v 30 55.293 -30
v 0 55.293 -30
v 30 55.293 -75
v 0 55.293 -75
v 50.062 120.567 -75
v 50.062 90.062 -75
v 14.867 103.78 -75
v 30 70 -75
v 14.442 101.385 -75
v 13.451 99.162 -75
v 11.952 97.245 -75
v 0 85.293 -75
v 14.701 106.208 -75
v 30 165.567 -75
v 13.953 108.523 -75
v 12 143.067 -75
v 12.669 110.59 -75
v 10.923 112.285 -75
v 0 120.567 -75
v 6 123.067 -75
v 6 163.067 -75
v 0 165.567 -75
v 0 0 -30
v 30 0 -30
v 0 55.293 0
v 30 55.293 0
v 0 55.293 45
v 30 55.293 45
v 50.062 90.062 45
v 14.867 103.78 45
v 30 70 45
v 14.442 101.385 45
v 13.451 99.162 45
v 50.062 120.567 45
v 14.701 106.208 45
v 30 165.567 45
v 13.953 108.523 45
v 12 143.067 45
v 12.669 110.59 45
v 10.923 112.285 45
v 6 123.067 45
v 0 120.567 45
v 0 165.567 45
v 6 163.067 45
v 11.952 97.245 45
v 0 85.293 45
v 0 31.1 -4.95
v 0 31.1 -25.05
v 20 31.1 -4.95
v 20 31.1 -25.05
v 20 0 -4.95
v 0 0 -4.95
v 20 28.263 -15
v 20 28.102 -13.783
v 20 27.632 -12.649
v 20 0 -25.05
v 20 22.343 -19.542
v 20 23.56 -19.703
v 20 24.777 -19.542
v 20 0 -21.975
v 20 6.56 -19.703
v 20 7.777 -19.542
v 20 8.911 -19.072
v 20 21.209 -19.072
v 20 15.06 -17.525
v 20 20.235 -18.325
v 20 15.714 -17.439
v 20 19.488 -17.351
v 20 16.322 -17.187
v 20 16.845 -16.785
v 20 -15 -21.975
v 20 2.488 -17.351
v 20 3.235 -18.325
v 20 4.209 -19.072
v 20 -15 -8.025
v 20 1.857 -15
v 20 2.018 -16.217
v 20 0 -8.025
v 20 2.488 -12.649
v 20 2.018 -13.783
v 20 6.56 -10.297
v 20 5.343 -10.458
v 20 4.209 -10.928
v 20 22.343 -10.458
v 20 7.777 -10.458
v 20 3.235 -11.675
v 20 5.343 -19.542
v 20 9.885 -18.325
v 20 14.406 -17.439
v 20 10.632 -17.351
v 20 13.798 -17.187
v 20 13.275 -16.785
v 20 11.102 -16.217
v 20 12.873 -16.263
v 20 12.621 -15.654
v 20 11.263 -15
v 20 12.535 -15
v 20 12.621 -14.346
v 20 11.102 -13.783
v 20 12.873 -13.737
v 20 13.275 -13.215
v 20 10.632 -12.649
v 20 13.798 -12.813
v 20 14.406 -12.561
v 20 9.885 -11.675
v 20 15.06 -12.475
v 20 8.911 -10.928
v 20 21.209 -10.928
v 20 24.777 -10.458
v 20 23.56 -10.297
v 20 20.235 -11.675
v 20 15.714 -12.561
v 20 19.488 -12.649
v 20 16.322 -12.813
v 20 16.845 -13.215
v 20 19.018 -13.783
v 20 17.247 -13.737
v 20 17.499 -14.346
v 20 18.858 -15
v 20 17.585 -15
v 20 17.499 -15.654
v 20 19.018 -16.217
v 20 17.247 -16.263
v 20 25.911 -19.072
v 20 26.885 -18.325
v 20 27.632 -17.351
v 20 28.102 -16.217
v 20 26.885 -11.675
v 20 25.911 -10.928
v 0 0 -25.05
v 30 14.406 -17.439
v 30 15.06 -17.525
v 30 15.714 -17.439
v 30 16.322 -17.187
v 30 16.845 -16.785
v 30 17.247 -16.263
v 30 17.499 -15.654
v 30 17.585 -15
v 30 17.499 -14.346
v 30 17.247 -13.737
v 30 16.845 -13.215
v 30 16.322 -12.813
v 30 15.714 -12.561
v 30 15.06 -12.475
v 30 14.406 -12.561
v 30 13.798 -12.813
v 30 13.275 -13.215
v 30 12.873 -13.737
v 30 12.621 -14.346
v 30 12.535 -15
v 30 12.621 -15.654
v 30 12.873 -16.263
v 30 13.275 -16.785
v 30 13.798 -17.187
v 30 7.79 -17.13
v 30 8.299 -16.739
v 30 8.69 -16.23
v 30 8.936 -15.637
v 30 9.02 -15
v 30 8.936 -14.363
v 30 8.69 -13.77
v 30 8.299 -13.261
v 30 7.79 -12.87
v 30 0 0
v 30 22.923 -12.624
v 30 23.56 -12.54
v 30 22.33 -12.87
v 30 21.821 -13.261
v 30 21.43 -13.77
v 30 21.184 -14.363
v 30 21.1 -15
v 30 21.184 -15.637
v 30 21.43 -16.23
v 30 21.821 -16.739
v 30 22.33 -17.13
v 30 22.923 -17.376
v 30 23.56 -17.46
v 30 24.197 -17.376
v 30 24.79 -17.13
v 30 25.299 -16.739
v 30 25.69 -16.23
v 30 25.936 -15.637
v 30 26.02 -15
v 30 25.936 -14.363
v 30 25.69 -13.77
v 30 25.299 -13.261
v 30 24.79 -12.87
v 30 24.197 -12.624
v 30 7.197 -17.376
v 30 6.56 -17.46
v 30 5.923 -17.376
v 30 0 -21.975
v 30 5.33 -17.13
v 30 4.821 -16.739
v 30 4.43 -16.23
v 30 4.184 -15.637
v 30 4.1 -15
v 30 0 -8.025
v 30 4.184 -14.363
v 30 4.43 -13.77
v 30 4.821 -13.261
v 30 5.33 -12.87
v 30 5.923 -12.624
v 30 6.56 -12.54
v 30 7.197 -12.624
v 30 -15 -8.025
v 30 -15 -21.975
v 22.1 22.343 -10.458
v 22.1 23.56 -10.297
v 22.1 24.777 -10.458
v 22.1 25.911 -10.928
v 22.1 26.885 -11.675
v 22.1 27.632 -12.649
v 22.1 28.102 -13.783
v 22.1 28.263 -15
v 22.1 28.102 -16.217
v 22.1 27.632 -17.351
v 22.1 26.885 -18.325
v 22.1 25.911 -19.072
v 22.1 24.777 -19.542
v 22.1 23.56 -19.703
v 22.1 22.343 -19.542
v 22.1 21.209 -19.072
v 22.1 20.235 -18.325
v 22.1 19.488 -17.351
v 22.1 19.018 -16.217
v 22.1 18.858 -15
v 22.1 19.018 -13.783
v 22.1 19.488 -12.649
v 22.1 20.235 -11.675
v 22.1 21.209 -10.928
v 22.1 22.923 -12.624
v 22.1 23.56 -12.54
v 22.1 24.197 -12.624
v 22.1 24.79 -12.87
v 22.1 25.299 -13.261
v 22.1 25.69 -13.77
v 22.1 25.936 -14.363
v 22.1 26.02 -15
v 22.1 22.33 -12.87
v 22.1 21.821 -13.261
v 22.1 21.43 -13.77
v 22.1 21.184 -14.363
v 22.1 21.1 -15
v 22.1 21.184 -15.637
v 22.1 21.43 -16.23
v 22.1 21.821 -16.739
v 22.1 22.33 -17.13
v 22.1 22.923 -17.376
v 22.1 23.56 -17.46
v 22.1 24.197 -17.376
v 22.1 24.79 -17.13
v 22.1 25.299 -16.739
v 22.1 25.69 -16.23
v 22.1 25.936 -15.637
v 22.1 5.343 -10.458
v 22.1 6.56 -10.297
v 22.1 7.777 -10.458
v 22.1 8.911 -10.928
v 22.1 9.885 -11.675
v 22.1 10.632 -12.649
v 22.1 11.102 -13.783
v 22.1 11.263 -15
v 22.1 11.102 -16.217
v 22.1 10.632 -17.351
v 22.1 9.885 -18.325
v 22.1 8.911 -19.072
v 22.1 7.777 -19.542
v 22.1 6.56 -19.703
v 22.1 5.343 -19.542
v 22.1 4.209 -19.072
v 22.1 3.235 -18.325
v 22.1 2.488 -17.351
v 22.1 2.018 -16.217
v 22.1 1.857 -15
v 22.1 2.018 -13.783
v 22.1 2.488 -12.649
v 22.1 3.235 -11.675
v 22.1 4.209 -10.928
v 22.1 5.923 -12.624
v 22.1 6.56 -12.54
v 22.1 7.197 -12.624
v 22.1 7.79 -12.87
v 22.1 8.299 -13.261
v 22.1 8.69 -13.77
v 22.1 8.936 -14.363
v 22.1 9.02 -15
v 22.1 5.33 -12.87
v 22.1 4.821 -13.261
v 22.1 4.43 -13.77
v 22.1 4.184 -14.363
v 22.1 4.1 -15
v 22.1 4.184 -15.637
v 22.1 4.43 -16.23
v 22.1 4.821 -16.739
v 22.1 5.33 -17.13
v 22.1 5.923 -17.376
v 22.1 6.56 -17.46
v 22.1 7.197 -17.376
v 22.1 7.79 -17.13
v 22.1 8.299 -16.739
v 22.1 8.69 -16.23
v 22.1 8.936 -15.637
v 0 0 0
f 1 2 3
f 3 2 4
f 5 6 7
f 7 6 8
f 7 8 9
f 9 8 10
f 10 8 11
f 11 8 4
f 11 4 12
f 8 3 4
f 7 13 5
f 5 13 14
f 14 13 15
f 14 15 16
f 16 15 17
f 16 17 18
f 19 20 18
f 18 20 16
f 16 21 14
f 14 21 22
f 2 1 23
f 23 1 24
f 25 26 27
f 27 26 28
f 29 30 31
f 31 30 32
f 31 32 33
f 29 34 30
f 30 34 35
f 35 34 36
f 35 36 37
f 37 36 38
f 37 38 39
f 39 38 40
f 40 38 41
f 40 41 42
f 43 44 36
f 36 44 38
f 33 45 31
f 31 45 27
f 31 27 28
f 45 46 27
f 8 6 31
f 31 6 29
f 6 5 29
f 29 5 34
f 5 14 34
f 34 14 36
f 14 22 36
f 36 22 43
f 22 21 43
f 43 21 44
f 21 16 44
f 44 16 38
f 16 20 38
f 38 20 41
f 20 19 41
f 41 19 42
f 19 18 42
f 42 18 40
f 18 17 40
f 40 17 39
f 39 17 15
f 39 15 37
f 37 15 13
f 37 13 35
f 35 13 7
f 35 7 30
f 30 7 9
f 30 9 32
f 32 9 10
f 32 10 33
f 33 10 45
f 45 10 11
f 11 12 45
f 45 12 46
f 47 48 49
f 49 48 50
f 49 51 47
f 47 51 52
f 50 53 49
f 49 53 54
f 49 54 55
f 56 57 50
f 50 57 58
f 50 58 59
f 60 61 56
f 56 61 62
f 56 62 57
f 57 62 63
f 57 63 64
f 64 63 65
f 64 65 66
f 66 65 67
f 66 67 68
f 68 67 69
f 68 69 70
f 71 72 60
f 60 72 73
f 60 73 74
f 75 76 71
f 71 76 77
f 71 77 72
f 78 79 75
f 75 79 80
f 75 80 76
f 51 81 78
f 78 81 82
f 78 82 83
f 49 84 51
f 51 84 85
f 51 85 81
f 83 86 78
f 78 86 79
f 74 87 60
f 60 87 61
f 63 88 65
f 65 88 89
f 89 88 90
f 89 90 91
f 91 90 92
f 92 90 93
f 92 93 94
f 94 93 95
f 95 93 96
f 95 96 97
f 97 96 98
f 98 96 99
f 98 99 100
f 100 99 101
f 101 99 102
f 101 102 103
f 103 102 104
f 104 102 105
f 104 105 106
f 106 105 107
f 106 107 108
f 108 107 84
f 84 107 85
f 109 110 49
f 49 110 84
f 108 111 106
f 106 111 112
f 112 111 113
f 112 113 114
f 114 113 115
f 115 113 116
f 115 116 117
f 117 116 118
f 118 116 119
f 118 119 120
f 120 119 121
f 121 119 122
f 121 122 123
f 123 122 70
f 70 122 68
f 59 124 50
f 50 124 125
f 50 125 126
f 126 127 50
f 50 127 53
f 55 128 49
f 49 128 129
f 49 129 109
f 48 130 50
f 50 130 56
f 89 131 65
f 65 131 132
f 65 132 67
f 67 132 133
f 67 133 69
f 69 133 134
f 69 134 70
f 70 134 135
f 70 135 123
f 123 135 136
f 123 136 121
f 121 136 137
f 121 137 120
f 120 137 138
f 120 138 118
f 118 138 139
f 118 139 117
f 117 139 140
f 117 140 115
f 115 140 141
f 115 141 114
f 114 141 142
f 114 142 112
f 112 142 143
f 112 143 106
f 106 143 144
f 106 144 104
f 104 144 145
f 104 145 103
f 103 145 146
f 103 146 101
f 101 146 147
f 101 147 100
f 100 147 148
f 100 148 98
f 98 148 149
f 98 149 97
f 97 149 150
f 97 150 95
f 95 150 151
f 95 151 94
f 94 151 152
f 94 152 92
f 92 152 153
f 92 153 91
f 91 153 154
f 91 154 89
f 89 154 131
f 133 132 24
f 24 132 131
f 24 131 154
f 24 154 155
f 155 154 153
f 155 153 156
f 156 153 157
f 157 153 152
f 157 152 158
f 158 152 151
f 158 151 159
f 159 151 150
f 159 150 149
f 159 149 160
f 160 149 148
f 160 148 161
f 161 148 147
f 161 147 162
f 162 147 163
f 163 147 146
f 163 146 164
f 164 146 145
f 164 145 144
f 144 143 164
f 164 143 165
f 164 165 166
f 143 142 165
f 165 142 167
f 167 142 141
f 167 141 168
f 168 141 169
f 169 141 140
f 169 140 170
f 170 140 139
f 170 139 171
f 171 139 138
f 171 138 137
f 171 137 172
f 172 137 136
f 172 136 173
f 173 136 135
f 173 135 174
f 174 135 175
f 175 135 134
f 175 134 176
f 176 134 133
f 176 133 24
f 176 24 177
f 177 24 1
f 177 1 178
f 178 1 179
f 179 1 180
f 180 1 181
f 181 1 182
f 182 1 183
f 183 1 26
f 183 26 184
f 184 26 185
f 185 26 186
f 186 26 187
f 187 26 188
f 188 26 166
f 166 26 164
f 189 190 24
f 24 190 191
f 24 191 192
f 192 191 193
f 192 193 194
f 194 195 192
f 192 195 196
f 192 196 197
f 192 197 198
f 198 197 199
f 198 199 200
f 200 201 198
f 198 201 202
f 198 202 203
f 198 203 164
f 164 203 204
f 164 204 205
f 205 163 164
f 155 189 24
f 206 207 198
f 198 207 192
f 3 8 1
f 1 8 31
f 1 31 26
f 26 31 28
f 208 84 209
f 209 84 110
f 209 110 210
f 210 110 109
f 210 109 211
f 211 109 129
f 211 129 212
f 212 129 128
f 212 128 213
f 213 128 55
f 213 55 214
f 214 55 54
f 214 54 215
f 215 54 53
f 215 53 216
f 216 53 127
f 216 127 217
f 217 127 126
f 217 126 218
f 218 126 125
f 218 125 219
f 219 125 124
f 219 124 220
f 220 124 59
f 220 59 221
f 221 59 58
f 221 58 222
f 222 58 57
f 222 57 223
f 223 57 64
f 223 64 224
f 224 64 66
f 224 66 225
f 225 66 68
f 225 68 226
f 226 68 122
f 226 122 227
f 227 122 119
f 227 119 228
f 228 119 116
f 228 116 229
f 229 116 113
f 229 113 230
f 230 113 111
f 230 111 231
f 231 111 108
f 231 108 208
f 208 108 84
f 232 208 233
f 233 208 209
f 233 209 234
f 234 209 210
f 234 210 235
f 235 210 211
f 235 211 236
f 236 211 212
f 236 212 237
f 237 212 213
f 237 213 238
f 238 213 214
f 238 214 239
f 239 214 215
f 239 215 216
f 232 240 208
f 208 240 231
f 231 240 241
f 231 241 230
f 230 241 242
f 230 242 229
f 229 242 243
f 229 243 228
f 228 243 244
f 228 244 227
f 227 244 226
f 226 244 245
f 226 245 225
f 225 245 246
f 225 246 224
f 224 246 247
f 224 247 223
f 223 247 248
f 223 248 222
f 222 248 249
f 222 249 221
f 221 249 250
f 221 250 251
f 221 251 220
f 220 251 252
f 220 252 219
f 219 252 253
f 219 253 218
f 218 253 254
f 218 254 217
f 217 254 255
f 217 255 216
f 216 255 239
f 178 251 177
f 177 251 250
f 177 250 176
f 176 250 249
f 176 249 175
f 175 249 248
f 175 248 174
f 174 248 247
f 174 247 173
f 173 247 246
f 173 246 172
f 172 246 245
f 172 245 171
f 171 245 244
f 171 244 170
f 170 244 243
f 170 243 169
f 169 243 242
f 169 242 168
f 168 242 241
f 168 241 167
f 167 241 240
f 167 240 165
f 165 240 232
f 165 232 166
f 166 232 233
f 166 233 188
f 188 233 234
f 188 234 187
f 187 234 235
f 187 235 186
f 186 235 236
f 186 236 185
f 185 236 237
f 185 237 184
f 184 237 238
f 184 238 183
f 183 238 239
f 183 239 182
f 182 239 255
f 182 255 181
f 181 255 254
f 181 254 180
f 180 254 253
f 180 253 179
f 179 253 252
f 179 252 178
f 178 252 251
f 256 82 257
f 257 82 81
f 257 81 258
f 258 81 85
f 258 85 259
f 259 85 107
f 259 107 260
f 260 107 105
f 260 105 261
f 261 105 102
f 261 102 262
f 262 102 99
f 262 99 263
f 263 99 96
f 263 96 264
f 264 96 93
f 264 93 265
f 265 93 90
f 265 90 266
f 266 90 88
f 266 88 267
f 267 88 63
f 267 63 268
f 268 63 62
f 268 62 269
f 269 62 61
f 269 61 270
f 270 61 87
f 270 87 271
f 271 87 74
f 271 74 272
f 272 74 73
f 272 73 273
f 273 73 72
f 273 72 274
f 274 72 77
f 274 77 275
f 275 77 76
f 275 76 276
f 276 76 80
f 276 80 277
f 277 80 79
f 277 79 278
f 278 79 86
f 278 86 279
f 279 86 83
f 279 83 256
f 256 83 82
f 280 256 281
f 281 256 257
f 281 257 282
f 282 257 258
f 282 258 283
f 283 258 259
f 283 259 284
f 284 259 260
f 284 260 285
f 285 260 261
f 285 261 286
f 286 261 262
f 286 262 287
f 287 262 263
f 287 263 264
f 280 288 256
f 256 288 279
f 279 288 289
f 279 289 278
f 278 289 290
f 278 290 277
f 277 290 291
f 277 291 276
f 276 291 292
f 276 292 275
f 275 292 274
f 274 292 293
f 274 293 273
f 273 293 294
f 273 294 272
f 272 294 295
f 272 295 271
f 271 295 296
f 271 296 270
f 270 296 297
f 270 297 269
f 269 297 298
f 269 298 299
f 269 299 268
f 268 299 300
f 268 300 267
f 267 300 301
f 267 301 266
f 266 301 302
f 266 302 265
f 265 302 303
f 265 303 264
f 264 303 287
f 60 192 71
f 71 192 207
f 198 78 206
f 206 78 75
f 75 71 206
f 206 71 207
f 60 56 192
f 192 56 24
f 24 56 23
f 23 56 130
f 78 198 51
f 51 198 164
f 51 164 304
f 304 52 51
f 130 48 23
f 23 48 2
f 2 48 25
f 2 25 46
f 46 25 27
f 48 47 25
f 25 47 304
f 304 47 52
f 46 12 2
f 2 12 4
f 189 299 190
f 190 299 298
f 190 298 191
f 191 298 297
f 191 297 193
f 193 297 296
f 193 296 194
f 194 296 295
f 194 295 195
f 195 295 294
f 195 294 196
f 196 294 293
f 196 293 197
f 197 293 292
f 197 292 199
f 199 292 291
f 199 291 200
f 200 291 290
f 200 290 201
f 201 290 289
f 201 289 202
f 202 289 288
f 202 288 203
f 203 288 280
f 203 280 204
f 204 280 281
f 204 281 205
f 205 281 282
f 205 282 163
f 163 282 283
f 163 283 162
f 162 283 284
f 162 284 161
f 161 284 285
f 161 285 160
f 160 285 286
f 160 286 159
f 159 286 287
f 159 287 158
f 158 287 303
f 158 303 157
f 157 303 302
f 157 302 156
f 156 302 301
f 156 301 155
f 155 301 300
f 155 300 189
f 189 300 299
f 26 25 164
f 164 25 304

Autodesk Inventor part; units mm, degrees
ref_plane "YZ Plane" through (0, 0, 0) normal (1, 0, 0) x (0, 1, 0)
ref_plane "XZ Plane" through (0, 0, 0) normal (0, 1, 0) x (-1, 0, 0)
sketch "Sketch1" plane through (0, 0, 0) normal (0, 0, 1) x (1, 0, 0)
  line L0 (0, 0) -> (25, 0)
  line L1 (25, 0) -> (25, 40)
  line L2 (25, 40) -> (0, 40)
  line L3 (0, 40) -> (0, 0)
  dimension "d1" = 25
  dimension "d2" = 40
  dimension "d3" = 25
extrude "Extrusion1" add sketch "Sketch1" against normal blind 30
sketch "Sketch2" plane through (25, 0, 0) normal (1, 0, 0) x (0, 0, -1)
  line L0 (0, 0) -> (30, 0) projected
  circle A0 centre (15, 6.56) radius 2.46
extrude "Extrusion2" cut sketch "Sketch2" against normal blind 30
sketch "Sketch3" plane through (0, 0, 0) normal (-1, 0, 0) x (0, 0, 1)
  line L0 (0, 0) -> (-30, 0) projected
  line L1 (-25.05, 0) -> (-4.95, 0)
  line L2 (-4.95, 0) -> (-4.95, 33.12)
  line L3 (-4.95, 33.12) -> (-25.05, 33.12)
  line L4 (-25.05, 33.12) -> (-25.05, 0)
  dimension "d11" = 20.1
extrude "Extrusion3" cut sketch "Sketch3" against normal blind 20
sketch "Sketch4" plane through (0, 0, 0) normal (0, -1, 0) x (1, 0, 0)
  line L0 (20, -4.95) -> (20, -25.05) projected
  line L1 (20, -15) -> (25, -15)
  line L2 (25, 0) -> (25, -30) projected
  line L3 (20, -8.025) -> (25, -8.025)
  line L4 (25, -8.025) -> (25, -21.975)
  line L5 (25, -21.975) -> (20, -21.975)
  line L6 (20, -21.975) -> (20, -8.025)
  line L7 (20, -8.025) -> (25, -21.975) construction
  line L8 (25, -8.025) -> (20, -21.975) construction
  line L9 (25, -12.54) -> (25, -17.46) projected
  point P0 (0, 0)
  point P1 (22.5, -15)
  dimension "d14" = 13.95
extrude "Extrusion4" add sketch "Sketch4" along normal blind 15
sketch "Sketch5" plane through (20, 0, 0) normal (-1, 0, 0) x (0, 0, 1)
  circle A0 centre (-15, 6.56) radius 2.46 projected
  circle A1 centre (-15, 6.56) radius 4.7025
  circle A2 centre (-15, 6.56) radius 2.46 projected
  circle A3 centre (-15, 6.56) radius 2.46
  point P0 (0, 0)
  dimension "d17" = 9.405
extrude "Extrusion5" cut sketch "Sketch5" against normal blind 2.1
sketch "Sketch6" plane through (25, 0, 0) normal (1, 0, 0) x (0, 0, -1)
  circle A0 centre (15, 6.56) radius 4.7025 projected
  line L0 (15, 6.56) -> (15, 23.56)
  circle A1 centre (15, 23.56) radius 2.46
  point P0 (0, 0)
  dimension "d20" = 17
  dimension "d21" = 4.92
extrude "Extrusion6" cut sketch "Sketch6" against normal blind 10 contours A1
sketch "Sketch7" plane through (20, 0, 0) normal (-1, 0, 0) x (0, 0, 1)
  circle A0 centre (-15, 23.56) radius 2.46 projected
  circle A1 centre (-15, 23.56) radius 4.7025
  point P0 (0, 0)
  dimension "d24" = 9.405
extrude "Extrusion7" cut sketch "Sketch7" against normal blind 2.1
sketch "Sketch9" plane through (25, 0, 0) normal (1, 0, 0) x (0, 0, -1)
  circle A0 centre (15, 6.56) radius 2.46 projected
  circle A1 centre (15, 6.56) radius 2.46
  circle A2 centre (15, 23.56) radius 2.46 projected
  circle A3 centre (15, 23.56) radius 2.46
  line L0 (30, 40) -> (30, 0) projected
  line L1 (30, 0) -> (30, 40)
  line L2 (30, 40) -> (0, 40)
  line L3 (0, 40) -> (0, 0)
  line L4 (0, 0) -> (8.025, 0) projected
  line L5 (21.975, 0) -> (21.975, -15)
  line L6 (21.975, -15) -> (8.025, -15)
  line L7 (8.025, -15) -> (8.025, 0)
  line L8 (0, 0) -> (8.025, 0)
  line L9 (21.975, 0) -> (30, 0)
extrude "Extrusion8" add sketch "Sketch9" along normal blind 5
sketch "Sketch10" plane through (0, 40, 0) normal (0, 1, 0) x (1, 0, 0)
  line L0 (0, 30) -> (30, 30) projected
  line L1 (30, 0) -> (0, 0) projected
  line L2 (0, 30) -> (30, 30)
  line L3 (30, 30) -> (30, 0)
  line L4 (30, 0) -> (0, 0)
  line L5 (0, 0) -> (0, 30)
extrude "Extrusion9" add sketch "Sketch10" along normal blind 30
sketch "Sketch12" plane through (30, 0, 0) normal (1, 0, 0) x (0, 0, -1)
  circle A0 centre (15, 6.56) radius 2.46 projected
  line L0 (15, 6.56) -> (15, 15.06)
  circle A1 centre (15, 15.06) radius 2.525
  point P0 (0, 0)
  dimension "d31" = 8.5
  dimension "d33" = 5.05
extrude "Extrusion10" cut sketch "Sketch12" against normal blind 30 contours A1
sketch "Sketch15" plane through (0, 0, -25.05) normal (-1, 0, 0) x (0, 0, 1)
  line L0 (0, 33.12) -> (20.1, 33.12) projected
  line L1 (20.1, 33.12) -> (20.1, 0) projected
  line L2 (0, 33.12) -> (20.1, 33.12)
  line L3 (20.1, 33.12) -> (20.1, 31.1)
  line L4 (20.1, 31.1) -> (0, 31.1)
  line L5 (0, 31.1) -> (0, 33.12)
  point P0 (25.05, 0)
  dimension "d57" = 2.02
extrude "Extrusion13" add sketch "Sketch15" against normal blind 20
sketch "Sketch17" plane through (0, 0, 0) normal (0, 0, 1) x (1, 0, 0)
  line L0 (0, 70) -> (30, 70) projected
  line L1 (30, 70) -> (50.0622, 90.0622)
  line L2 (30, 70) -> (80, 70) construction
  line L3 (11.9522, 97.2454) -> (0, 85.2932)
  line L4 (0, 70) -> (0, 85.2932)
  line L5 (0, 70) -> (0, 0) projected
  line L6 (0, 70) -> (30, 70)
  line L7 (10.923, 112.2849) -> (0, 120.567)
  line L8 (50.0622, 105.3553) -> (50.0622, 120.567)
  line L9 (50.0622, 105.3553) -> (50.0622, 90.0622)
  arc A0 (11.9522, 97.2454) -> (10.923, 112.2849) centre (4.8811, 104.3165) ccw
  line L10 (0, 165.567) -> (30, 165.567)
  line L11 (30, 165.567) -> (50.0622, 120.567)
  line L12 (6, 163.067) -> (0, 165.567)
  line L13 (6, 123.067) -> (0, 120.567)
  line L14 (6, 123.067) -> (12, 143.067)
  line L15 (12, 143.067) -> (6, 163.067)
  dimension "d61" = 45
  dimension "d62" = 32.0271
  dimension "d72" = 10
extrude "Extrusion14" add sketch "Sketch17" against normal blind 30
sketch "Sketch24" plane through (0, 0, 0) normal (0, 0, 1) x (1, 0, 0)
  line L0 (30, 70) -> (50.0622, 90.0622) projected
  line L1 (30, 70) -> (50.0622, 90.0622)
  line L2 (50.0622, 90.0622) -> (50.0622, 120.567) projected
  line L3 (50.0622, 90.0622) -> (50.0622, 120.567)
  line L4 (30, 165.567) -> (50.0622, 120.567) projected
  line L5 (50.0622, 120.567) -> (30, 165.567)
  line L6 (0, 165.567) -> (30, 165.567) projected
  line L7 (30, 165.567) -> (0, 165.567)
  line L8 (6, 163.067) -> (0, 165.567) projected
  line L9 (0, 165.567) -> (6, 163.067)
  line L10 (12, 143.067) -> (6, 163.067) projected
  line L11 (6, 163.067) -> (12, 143.067)
  line L12 (6, 123.067) -> (12, 143.067) projected
  line L13 (12, 143.067) -> (6, 123.067)
  line L14 (0, 120.567) -> (6, 123.067) projected
  line L15 (6, 123.067) -> (0, 120.567)
  line L16 (10.923, 112.2849) -> (0, 120.567) projected
  line L17 (0, 120.567) -> (10.923, 112.2849)
  line L18 (0, 85.2932) -> (11.9522, 97.2454) projected
  line L19 (11.9522, 97.2454) -> (0, 85.2932)
  line L20 (0, 85.2932) -> (0, 55.2932)
  line L21 (0, 0) -> (0, 85.2932) projected
  line L22 (0, 55.2932) -> (30, 55.2932)
  line L23 (30, 0) -> (30, 70) projected
  line L24 (30, 55.2932) -> (30, 70)
  arc A0 (11.9522, 97.2454) -> (10.923, 112.2849) centre (4.8811, 104.3165) ccw projected
  arc A1 (11.9522, 97.2454) -> (10.923, 112.2849) centre (4.8811, 104.3165) ccw
  dimension "d102" = 30
extrude "Extrusion15" add sketch "Sketch24" along normal blind 45
ref_plane "Work Plane1" through (0, 0, -15) normal (0, 0, 1) x (1, 0, 0)
mirror "Mirror1" about plane through (0, 0, -15) normal (0, 0, 1) of "Extrusion15"
properties part number "rec_c_40mm_x_120mm"
